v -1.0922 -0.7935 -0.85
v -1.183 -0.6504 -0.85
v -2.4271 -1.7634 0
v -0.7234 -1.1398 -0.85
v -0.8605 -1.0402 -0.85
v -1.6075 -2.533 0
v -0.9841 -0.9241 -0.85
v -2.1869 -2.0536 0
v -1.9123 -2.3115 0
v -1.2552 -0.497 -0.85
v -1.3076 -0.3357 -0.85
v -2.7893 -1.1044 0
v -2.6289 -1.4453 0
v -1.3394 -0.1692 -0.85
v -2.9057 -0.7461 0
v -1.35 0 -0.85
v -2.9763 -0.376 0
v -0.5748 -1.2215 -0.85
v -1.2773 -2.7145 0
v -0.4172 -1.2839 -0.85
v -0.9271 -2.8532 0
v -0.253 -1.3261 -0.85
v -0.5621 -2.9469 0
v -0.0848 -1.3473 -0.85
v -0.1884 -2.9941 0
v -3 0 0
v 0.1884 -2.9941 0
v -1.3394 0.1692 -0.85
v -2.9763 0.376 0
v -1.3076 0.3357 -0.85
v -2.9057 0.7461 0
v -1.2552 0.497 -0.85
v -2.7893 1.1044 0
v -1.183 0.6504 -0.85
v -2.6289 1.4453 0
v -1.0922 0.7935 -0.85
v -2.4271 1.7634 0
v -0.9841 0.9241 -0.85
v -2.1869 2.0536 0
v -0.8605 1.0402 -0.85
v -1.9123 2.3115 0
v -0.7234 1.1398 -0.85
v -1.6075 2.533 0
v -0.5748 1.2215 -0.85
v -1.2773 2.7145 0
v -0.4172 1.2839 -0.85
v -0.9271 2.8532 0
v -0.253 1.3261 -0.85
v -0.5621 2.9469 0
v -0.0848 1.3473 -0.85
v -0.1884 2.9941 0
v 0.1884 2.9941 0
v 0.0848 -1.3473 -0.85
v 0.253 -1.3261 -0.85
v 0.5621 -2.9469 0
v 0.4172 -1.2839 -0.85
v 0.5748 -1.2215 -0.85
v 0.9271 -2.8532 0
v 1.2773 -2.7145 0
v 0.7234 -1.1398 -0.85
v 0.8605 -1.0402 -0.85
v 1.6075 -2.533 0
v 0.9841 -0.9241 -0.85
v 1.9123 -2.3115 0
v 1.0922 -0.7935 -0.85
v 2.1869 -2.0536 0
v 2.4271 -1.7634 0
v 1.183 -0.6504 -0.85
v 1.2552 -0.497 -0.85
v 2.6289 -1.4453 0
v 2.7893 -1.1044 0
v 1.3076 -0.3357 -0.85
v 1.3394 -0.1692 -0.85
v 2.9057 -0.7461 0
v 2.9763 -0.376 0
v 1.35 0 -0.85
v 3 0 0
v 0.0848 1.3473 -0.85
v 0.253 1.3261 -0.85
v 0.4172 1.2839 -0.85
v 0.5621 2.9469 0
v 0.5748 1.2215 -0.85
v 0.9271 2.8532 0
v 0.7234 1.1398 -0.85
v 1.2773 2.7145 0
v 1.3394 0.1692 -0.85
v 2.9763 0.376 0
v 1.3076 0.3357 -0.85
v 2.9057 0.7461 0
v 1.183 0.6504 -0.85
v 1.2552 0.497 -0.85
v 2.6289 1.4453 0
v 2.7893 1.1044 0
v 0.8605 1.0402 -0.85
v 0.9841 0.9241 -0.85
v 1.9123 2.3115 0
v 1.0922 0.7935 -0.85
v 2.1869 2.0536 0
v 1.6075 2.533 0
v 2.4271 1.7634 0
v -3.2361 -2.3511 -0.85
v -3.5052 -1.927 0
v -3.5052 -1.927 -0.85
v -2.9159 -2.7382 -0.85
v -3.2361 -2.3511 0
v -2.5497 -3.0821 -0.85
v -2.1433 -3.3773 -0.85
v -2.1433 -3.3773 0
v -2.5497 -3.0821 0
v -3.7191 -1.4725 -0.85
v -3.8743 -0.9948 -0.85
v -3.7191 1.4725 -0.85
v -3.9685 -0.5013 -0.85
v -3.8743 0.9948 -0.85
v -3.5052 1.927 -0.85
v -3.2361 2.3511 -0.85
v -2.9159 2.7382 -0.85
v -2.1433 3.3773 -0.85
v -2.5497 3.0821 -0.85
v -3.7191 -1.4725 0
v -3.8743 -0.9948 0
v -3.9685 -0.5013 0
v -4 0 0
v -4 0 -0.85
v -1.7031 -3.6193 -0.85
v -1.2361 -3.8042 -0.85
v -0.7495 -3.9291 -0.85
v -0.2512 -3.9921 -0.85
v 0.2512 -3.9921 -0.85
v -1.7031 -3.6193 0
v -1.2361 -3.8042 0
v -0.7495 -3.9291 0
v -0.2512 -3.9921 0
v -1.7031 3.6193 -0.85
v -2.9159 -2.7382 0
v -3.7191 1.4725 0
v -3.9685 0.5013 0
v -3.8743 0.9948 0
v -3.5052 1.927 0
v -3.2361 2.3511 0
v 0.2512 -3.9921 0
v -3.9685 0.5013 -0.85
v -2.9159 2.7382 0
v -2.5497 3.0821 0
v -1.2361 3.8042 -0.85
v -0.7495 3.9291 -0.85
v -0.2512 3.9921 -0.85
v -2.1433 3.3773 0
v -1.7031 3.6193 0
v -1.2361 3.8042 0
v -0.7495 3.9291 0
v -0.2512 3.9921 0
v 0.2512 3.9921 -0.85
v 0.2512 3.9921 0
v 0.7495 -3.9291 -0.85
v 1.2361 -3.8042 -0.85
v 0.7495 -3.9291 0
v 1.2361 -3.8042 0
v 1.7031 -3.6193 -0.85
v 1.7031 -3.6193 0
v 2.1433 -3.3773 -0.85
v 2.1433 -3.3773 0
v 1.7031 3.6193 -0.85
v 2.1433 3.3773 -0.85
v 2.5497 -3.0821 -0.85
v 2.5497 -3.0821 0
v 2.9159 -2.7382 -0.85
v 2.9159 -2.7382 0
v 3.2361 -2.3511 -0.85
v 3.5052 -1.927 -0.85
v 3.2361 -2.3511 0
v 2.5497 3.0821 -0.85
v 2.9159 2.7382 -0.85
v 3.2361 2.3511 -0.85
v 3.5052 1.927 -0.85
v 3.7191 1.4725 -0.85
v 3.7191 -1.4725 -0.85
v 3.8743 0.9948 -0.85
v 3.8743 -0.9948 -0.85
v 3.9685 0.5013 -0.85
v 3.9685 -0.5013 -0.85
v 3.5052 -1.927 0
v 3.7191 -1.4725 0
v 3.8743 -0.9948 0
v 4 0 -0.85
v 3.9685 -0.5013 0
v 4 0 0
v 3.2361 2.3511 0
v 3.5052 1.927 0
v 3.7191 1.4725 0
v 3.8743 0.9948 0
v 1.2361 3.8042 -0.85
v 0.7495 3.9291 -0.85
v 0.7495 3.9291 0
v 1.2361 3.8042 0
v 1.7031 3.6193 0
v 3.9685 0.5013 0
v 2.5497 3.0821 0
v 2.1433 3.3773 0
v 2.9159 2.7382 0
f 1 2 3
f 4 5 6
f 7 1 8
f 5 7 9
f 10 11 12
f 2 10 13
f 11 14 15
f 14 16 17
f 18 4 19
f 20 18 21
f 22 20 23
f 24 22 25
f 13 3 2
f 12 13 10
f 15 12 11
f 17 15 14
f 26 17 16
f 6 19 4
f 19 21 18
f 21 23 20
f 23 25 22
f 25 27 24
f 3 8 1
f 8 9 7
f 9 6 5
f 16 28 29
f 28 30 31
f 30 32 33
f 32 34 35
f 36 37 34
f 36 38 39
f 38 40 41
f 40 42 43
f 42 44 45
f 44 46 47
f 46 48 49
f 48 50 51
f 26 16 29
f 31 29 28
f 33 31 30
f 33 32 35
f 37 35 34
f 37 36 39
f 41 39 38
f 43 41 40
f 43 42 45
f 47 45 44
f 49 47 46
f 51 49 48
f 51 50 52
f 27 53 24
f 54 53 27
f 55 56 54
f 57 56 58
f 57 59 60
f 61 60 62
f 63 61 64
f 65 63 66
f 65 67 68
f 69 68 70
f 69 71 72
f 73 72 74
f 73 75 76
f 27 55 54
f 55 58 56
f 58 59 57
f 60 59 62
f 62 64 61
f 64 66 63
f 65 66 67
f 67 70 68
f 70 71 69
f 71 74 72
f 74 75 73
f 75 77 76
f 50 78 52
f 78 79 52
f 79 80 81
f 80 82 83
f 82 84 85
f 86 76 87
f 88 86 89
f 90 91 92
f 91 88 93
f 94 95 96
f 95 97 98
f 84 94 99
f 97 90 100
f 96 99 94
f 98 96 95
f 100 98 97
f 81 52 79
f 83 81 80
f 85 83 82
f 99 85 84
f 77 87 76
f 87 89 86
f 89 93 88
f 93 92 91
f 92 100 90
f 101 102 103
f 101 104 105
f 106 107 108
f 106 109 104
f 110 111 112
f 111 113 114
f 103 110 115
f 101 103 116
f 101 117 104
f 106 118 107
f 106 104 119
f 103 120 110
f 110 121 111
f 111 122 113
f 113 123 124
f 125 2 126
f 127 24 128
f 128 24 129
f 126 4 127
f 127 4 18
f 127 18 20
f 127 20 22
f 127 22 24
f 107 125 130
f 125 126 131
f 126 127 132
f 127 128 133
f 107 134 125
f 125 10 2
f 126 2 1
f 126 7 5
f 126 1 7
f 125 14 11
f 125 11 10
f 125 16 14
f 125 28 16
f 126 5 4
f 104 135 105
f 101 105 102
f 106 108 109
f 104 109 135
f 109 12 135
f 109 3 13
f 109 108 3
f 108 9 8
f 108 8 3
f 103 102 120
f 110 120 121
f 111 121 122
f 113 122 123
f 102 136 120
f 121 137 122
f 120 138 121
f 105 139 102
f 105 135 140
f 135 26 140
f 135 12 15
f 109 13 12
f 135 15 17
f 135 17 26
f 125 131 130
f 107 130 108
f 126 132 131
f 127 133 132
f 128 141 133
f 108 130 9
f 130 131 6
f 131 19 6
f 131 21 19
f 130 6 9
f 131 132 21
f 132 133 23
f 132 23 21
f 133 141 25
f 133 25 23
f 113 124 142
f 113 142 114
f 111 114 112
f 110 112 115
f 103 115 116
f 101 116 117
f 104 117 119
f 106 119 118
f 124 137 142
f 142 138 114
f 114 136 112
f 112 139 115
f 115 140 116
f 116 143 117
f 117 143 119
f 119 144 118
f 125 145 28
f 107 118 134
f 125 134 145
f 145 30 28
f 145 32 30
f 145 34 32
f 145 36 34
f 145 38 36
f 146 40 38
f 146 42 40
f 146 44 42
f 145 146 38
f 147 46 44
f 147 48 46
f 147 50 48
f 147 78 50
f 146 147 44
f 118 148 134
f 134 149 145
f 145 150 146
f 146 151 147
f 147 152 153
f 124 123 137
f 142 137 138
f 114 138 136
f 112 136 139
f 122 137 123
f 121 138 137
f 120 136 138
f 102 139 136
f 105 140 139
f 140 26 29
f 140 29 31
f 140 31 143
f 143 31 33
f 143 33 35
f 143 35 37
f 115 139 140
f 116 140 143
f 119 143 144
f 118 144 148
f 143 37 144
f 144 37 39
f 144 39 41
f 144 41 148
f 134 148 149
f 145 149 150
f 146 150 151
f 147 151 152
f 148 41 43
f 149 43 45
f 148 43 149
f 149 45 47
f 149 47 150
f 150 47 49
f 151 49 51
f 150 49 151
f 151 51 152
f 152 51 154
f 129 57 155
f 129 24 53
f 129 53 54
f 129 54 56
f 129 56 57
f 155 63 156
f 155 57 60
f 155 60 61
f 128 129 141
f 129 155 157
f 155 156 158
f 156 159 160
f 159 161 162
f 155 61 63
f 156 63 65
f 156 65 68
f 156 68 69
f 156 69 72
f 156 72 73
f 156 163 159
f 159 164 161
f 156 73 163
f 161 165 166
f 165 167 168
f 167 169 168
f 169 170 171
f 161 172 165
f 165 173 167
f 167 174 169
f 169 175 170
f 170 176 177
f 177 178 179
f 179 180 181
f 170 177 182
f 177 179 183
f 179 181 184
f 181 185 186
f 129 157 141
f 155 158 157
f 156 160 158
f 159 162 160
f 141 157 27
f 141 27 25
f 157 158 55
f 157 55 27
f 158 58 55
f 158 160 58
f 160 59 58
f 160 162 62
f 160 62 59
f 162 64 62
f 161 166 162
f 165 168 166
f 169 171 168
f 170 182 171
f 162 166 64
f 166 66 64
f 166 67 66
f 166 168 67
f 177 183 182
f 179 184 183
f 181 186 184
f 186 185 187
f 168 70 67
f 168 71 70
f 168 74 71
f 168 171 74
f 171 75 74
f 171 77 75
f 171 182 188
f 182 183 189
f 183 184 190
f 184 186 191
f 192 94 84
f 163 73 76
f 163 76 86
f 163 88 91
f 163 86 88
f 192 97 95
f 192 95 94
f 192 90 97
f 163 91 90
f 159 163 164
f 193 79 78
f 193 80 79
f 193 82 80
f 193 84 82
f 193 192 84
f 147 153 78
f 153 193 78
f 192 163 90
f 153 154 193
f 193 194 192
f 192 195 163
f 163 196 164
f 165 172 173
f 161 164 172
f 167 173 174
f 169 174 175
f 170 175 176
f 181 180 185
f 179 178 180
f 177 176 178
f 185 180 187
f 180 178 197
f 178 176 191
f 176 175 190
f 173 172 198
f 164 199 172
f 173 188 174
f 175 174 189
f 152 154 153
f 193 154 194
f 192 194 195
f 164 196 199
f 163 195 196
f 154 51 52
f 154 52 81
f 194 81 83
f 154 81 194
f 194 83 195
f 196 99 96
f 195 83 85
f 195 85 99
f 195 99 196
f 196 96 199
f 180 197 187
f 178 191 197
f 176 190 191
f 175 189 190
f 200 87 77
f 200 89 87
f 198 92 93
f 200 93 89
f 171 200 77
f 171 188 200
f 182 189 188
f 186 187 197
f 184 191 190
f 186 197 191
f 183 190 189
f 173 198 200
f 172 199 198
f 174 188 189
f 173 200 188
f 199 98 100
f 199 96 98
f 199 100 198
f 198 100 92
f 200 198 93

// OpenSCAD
$fn = 50;

difference() {
	union() {
		translate(v = [0, 0, -0.85]) {
			cylinder(h = 0.85, r = 4.0);
		}
	}
	union() {
		translate(v = [0, 0, 0]) {
			rotate(a = [0, 0, 0]) {
				difference() {
					union() {
						translate(v = [0, 0, -3.85]) {
							cylinder(h = 3.85, r = 1.0);
						}
						translate(v = [0, 0, -0.85]) {
							cylinder(h = 0.85, r1 = 1.35, r2 = 3.0);
						}
						translate(v = [0, 0, -3.85]) {
							cylinder(h = 3.85, r = 1.35);
						}
						translate(v = [0, 0, -3.85]) {
							cylinder(h = 3.85, r = 1.0);
						}
					}
					union();
				}
			}
		}
	}
}
